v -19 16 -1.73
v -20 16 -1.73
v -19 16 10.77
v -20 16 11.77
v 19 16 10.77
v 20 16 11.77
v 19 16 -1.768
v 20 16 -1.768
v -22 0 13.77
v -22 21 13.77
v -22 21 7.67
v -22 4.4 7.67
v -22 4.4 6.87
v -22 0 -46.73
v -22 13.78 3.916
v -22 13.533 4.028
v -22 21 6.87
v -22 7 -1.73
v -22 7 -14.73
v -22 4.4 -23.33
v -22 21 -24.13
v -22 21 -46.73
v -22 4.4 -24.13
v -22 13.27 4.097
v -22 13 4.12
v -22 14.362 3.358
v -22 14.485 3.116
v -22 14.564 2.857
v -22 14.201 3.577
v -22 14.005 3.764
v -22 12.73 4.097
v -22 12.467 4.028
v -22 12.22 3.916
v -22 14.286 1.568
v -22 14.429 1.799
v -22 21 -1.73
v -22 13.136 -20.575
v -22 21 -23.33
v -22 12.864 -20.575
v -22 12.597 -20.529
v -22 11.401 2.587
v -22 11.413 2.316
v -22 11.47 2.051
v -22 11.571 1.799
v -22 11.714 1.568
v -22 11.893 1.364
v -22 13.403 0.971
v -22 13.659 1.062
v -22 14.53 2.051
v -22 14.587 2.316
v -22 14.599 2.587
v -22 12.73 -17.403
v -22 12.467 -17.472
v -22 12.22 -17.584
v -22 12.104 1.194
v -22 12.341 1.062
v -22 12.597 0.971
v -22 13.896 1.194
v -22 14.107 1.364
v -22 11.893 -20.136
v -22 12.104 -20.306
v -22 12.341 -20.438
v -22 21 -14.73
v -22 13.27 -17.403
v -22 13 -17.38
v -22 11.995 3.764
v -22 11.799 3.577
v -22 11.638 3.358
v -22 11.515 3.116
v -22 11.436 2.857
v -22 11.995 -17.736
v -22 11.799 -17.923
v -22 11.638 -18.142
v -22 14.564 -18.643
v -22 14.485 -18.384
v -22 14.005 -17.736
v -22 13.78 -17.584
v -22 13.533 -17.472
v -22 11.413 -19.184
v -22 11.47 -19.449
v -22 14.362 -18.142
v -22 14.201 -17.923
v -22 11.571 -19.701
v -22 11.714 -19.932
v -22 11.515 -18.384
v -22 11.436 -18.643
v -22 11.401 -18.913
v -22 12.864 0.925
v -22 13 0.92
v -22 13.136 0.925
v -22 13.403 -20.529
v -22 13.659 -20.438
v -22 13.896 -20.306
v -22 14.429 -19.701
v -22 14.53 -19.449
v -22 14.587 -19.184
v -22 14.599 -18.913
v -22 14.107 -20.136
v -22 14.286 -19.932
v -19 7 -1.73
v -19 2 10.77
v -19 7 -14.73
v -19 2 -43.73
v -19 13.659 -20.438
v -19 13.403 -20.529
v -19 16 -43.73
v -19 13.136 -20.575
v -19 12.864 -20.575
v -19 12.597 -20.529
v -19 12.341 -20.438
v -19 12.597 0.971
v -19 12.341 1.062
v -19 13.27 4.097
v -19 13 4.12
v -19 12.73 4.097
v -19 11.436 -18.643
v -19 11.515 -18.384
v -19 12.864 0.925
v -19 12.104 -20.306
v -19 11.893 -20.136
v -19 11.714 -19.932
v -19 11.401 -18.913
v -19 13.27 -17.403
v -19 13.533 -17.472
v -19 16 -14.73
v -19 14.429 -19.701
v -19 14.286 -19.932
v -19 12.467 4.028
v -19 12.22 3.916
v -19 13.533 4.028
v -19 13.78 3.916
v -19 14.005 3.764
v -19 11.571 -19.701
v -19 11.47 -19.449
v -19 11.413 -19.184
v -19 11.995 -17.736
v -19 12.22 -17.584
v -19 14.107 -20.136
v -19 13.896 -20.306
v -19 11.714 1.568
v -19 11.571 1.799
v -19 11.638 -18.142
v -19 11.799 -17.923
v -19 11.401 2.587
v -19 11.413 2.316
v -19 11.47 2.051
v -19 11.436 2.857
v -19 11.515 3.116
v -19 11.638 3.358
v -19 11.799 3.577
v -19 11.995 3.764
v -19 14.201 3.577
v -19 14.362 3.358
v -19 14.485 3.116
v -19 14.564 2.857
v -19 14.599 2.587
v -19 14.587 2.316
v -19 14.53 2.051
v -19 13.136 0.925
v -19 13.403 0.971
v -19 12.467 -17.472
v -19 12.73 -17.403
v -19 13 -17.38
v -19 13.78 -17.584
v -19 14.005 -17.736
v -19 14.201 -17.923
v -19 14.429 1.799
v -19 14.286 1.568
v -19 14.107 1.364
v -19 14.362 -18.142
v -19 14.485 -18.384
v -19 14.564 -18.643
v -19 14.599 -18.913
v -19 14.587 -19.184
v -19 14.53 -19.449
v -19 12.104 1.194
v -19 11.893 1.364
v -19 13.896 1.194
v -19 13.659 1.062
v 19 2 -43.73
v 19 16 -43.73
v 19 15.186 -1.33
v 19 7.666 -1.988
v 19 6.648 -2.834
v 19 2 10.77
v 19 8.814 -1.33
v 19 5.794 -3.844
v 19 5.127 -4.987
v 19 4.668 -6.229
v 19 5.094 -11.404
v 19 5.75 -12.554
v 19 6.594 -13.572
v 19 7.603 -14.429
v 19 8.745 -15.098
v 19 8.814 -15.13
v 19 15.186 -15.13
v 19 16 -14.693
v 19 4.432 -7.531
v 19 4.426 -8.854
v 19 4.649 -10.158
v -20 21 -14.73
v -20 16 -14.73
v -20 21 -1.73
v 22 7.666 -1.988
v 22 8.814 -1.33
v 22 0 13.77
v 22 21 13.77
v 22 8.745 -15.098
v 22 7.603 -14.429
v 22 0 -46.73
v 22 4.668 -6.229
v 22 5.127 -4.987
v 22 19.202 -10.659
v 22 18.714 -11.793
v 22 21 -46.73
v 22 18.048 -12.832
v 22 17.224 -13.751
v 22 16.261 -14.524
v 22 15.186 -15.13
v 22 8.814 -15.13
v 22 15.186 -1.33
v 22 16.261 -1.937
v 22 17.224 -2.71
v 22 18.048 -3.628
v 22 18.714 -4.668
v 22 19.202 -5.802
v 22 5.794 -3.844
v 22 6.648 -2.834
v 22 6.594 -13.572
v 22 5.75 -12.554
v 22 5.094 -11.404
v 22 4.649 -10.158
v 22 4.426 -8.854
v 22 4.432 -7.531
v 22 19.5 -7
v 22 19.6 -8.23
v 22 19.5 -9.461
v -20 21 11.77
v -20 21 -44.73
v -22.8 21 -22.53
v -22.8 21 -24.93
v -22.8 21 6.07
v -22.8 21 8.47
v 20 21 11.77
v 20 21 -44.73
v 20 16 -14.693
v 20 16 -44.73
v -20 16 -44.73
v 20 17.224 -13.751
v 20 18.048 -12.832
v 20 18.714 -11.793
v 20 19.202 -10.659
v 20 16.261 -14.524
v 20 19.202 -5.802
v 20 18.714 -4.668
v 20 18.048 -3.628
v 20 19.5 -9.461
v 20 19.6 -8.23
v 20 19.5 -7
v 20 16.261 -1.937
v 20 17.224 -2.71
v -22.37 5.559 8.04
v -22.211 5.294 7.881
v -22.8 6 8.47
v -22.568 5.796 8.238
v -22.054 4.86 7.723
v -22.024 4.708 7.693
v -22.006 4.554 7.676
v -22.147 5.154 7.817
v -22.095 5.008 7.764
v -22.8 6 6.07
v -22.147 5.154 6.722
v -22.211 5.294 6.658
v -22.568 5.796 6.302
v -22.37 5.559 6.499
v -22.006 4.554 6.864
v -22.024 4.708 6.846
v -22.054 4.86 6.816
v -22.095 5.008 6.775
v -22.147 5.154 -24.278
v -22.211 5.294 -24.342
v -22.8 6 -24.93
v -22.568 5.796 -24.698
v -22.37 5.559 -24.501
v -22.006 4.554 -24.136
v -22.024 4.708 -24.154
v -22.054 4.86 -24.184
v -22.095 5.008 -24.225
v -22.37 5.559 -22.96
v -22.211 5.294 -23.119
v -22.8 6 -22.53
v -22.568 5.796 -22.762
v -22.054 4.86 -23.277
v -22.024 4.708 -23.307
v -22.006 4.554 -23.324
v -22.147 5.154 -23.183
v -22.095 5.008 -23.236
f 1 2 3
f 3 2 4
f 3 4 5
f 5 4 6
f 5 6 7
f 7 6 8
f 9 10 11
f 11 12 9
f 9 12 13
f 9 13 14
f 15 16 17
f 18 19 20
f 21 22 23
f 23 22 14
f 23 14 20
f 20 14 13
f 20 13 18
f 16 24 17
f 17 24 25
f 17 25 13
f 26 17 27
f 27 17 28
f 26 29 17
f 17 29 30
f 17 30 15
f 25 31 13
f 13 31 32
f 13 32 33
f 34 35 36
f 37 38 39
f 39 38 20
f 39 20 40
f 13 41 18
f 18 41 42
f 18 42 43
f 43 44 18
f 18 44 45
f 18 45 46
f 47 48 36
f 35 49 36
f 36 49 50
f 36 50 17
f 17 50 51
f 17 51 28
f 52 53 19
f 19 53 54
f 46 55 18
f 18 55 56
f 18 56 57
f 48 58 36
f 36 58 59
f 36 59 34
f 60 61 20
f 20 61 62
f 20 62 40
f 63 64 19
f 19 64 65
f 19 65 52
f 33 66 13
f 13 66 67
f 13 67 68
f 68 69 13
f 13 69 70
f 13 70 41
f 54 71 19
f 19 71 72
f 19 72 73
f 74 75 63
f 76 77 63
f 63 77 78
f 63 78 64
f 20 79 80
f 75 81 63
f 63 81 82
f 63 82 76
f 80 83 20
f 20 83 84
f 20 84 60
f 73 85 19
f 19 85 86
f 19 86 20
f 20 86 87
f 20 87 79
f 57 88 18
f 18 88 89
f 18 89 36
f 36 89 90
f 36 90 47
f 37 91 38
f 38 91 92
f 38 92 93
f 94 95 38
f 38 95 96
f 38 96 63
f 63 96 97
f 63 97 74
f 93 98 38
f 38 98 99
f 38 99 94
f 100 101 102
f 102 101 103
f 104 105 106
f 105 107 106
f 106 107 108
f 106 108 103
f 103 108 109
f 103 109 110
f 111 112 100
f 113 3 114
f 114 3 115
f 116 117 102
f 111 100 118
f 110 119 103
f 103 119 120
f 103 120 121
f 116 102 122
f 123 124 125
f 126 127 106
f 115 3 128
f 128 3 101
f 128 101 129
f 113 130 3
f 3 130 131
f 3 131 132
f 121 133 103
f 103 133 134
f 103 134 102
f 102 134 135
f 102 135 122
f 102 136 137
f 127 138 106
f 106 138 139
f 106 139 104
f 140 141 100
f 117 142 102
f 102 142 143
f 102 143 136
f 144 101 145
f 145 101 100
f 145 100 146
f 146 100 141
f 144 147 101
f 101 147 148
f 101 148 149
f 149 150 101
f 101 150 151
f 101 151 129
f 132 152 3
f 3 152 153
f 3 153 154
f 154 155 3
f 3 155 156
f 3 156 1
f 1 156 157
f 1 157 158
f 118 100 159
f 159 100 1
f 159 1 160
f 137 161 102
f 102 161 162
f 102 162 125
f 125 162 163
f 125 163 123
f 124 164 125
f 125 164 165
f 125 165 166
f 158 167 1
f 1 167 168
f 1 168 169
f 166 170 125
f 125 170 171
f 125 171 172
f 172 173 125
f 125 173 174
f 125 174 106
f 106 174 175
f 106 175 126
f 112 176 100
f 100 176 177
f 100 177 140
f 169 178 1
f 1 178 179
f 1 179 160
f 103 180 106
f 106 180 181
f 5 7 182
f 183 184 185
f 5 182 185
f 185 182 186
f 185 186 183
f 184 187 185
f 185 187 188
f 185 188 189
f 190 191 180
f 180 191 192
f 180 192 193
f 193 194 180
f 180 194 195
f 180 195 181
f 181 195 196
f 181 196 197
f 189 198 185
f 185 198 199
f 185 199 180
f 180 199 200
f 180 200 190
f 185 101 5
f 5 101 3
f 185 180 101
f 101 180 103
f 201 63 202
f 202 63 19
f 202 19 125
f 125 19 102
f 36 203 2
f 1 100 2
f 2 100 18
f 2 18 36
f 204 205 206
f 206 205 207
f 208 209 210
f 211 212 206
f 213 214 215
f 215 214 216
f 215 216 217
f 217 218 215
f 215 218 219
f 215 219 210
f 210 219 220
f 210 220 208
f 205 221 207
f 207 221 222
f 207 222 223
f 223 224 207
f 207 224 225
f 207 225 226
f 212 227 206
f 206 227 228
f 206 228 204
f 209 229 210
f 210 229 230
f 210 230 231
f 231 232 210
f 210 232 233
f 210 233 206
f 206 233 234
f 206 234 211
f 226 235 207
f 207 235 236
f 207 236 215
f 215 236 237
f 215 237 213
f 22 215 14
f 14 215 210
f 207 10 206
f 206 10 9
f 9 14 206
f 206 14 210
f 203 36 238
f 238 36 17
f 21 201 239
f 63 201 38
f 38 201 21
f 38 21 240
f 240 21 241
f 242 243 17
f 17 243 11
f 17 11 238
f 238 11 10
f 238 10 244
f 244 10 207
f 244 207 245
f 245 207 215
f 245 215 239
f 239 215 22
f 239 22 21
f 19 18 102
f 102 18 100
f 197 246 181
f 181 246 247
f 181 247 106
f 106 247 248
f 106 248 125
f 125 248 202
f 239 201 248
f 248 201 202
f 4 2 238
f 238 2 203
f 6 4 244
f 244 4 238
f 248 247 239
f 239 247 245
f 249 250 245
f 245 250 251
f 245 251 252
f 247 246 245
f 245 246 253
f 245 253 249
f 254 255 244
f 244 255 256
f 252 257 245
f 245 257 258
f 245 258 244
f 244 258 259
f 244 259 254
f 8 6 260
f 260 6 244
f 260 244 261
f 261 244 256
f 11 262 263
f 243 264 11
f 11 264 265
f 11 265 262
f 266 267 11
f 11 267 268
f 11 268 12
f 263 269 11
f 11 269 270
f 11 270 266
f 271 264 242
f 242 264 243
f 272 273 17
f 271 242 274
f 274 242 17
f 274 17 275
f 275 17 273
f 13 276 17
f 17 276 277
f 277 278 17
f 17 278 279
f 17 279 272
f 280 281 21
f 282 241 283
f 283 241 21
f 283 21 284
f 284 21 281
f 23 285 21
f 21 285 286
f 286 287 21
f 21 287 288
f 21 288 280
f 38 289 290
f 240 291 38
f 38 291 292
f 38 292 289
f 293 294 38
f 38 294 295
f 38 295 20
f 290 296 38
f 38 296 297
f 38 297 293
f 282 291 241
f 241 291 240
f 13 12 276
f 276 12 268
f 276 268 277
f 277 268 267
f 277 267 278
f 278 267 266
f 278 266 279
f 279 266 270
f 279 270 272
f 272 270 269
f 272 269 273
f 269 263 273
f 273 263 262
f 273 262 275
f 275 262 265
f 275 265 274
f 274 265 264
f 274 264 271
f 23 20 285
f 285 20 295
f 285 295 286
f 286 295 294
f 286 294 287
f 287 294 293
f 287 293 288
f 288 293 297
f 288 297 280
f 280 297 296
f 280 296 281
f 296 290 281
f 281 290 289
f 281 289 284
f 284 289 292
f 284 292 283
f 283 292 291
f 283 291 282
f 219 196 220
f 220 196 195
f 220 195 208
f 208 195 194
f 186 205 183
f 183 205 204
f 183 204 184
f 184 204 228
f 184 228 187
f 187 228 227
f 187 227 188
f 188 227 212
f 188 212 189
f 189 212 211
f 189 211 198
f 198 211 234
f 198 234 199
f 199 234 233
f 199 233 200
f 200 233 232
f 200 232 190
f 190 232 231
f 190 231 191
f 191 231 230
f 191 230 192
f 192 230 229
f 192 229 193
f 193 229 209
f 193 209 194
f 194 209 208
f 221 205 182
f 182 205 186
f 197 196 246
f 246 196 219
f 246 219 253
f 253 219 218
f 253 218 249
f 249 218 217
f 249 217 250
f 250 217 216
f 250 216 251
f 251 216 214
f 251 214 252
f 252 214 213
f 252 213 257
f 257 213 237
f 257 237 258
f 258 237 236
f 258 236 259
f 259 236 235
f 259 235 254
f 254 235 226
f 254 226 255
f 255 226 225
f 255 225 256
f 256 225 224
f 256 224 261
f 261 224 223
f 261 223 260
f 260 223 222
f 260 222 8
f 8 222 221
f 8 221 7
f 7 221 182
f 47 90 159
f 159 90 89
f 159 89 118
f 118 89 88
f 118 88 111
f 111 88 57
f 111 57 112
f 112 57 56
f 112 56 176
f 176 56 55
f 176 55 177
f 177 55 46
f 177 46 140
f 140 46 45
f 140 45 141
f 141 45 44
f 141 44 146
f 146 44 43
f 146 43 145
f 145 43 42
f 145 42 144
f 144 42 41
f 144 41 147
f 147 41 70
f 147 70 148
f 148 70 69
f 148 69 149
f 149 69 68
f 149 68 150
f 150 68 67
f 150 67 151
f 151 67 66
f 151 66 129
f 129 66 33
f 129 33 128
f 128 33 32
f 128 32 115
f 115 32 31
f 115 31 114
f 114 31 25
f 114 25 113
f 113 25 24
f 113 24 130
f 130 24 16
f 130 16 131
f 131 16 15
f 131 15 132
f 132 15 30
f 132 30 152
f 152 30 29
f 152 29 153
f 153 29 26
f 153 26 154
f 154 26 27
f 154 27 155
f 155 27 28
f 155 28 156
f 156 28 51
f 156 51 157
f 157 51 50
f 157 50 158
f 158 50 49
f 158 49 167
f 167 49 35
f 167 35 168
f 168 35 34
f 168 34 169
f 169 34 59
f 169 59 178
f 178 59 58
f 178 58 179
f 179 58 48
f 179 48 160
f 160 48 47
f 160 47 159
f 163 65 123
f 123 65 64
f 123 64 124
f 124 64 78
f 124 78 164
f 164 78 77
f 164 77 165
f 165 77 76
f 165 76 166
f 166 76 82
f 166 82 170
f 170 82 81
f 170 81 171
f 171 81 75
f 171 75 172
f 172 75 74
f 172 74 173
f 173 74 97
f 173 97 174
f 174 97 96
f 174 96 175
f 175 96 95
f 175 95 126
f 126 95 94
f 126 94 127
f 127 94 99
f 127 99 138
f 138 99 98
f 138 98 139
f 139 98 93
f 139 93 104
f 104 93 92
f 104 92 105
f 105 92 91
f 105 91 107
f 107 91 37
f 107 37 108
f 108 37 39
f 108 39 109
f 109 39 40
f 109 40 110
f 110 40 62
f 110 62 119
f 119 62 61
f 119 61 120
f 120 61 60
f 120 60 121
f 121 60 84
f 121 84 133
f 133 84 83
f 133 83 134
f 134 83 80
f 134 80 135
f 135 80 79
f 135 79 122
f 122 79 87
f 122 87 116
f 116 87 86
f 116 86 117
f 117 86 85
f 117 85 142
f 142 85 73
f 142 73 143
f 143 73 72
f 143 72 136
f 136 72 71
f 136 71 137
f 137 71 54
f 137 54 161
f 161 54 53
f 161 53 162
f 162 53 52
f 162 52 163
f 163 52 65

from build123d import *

# Parameters (mm, degrees)
CROQUIS3_W              = 44
CROQUIS3_H              = 60.5
SALIENTE_EXTRUIR1_DEPTH = 2
SALIENTE_EXTRUIR2_DEPTH = 19
CROQUIS5_W              = 3
CROQUIS5_H              = 13
SALIENTE_EXTRUIR3_DEPTH = 5
CROQUIS6_W              = 40
CROQUIS6_H              = 56.5
CROQUIS6_W_2            = 38
CROQUIS6_H_2            = 54.5
CORTAR_EXTRUIR1_DEPTH   = 5
SALIENTE_EXTRUIR4_DEPTH = 15
REDONDEO1_R             = 2
CORTAR_EXTRUIR4_DEPTH   = 10
CROQUIS9_R              = 1.6
CORTAR_EXTRUIR5_DEPTH   = 10


with BuildPart() as part:
    # Croquis3 → Saliente-Extruir1 (new body)
    with BuildSketch(Plane(origin=(0, 0, 0), x_dir=(1, 0, 0), z_dir=(0, 1, 0))):
        with Locations((0, 16.480436564)):
            Rectangle(CROQUIS3_W, CROQUIS3_H)
    extrude(amount=SALIENTE_EXTRUIR1_DEPTH)

    # Croquis4 → Saliente-Extruir2 (add)
    with BuildSketch(Plane(origin=(0, 2, 0), x_dir=(1, 0, 0), z_dir=(0, 1, 0))):
        Polygon((-22, -13.769563436), (22, -13.769563436), (22, 46.730436564), (-22, 46.730436564), (-22, 14.730436564), (-19, 14.730436564), (-19, 43.730436564), (19, 43.730436564), (19, -10.769563436), (-19, -10.769563436), (-19, 1.730436564), (-22, 1.730436564), align=None)
    extrude(amount=SALIENTE_EXTRUIR2_DEPTH)

    # Croquis5 → Saliente-Extruir3 (add)
    with BuildSketch(Plane(origin=(0, 2, 0), x_dir=(1, 0, 0), z_dir=(0, 1, 0))):
        with Locations((-20.5, 8.230436564)):
            Rectangle(CROQUIS5_W, CROQUIS5_H)
    extrude(amount=SALIENTE_EXTRUIR3_DEPTH)

    # Croquis6 → Cortar-Extruir1 (cut)
    with BuildSketch(Plane(origin=(0, 21, 0), x_dir=(1, 0, 0), z_dir=(0, 1, 0))):
        with Locations((0, 16.480436564)):
            Rectangle(CROQUIS6_W, CROQUIS6_H)
        with Locations((0, 16.480436564)):
            Rectangle(CROQUIS6_W_2, CROQUIS6_H_2, mode=Mode.SUBTRACT)
    extrude(amount=-CORTAR_EXTRUIR1_DEPTH, mode=Mode.SUBTRACT)

    # Croquis7 → Saliente-Extruir4 (add)
    with BuildSketch(Plane(origin=(0, 21, 0), x_dir=(1, 0, 0), z_dir=(0, 1, 0))):
        Polygon((-22, -7.269563436), (-22, -6.869563436), (-22.8, -6.069563436), (-22.8, -8.469563436), (-22, -7.669563436), align=None)
        Polygon((-22, 24.130436564), (-22, 23.730436564), (-22, 23.330436564), (-22.8, 22.530436564), (-22.8, 24.930436564), align=None)
    extrude(amount=-SALIENTE_EXTRUIR4_DEPTH)

    # Redondeo1
    # the kernel refuses this fillet: 2 mm, written as the material it adds along each edge
    with BuildSketch(Plane(origin=(-22, 6, 11.669563436), x_dir=(0, -1, 0), z_dir=(0, 0, -1))) as redondeo1_piece_1_section:
        with BuildLine():
            CenterArc((1.6, 2), REDONDEO1_R, 216.869897646, 53.130102354)
            Line((0, 0.8), (-0.032, 0.776))
            ThreePointArc((-0.032, 0.776), (-0.04, 0.4), (-0.04, 0))
            Line((-0.04, 0), (0, -0.04))
            Line((0, -0.04), (1.6, -0.04))
            Line((1.6, -0.04), (1.6, 0))
        make_face()
    redondeo1_piece_1 = extrude(amount=8.8, mode=Mode.PRIVATE)
    redondeo1_piece_1 = split(redondeo1_piece_1, bisect_by=Plane(origin=(-21.934112323, 5.657693128, 7.603675758), z_dir=(-0.7071067811865467, 0, -0.7071067811865483)), keep=Keep.TOP, mode=Mode.PRIVATE)
    redondeo1_piece_1 = split(redondeo1_piece_1, bisect_by=Plane(origin=(-21.934112323, 5.657693128, 6.935451113), z_dir=(-0.7071067811865467, 0, 0.7071067811865483)), keep=Keep.TOP, mode=Mode.PRIVATE)
    add(redondeo1_piece_1)
    with BuildSketch(Plane(origin=(-22, 6, -19.330436564), x_dir=(0, -1, 0), z_dir=(0, 0, -1))) as redondeo1_piece_2_section:
        with BuildLine():
            CenterArc((1.6, 2), REDONDEO1_R, 216.869897646, 53.130102354)
            Line((0, 0.8), (-0.032, 0.776))
            ThreePointArc((-0.032, 0.776), (-0.04, 0.4), (-0.04, 0))
            Line((-0.04, 0), (0, -0.04))
            Line((0, -0.04), (1.6, -0.04))
            Line((1.6, -0.04), (1.6, 0))
        make_face()
    redondeo1_piece_2 = extrude(amount=8.8, mode=Mode.PRIVATE)
    redondeo1_piece_2 = split(redondeo1_piece_2, bisect_by=Plane(origin=(-21.934112323, 5.657693128, -23.396324242), z_dir=(-0.707106781186546, 0, -0.7071067811865491)), keep=Keep.TOP, mode=Mode.PRIVATE)
    redondeo1_piece_2 = split(redondeo1_piece_2, bisect_by=Plane(origin=(-21.934112323, 5.657693128, -24.064548887), z_dir=(-0.7071067811865476, 0, 0.7071067811865476)), keep=Keep.TOP, mode=Mode.PRIVATE)
    add(redondeo1_piece_2)

    # Croquis8 → Cortar-Extruir4 (cut)
    with BuildSketch(Plane(origin=(22, 0, 0), x_dir=(0, 0, -1), z_dir=(1, 0, 0))):
        with BuildLine():
            Line((15.097928983, 8.744612484), (15.130436564, 8.814093536))
            Line((15.130436564, 8.814093536), (15.130436564, 15.185906464))
            ThreePointArc((15.130436564, 15.185906464), (8.230436564, 19.6), (1.330436564, 15.185906464))
            Line((1.330436564, 15.185906464), (1.330436564, 8.814093536))
            ThreePointArc((1.330436564, 8.814093536), (8.192081775, 4.400096783), (15.097928983, 8.744612484))
        make_face()
    extrude(amount=-CORTAR_EXTRUIR4_DEPTH, mode=Mode.SUBTRACT)

    # Croquis9 → Cortar-Extruir5 (cut)
    with BuildSketch(Plane.ZY.offset(22)):
        with Locations((-18.980436564, 13)):
            Circle(CROQUIS9_R)
        with Locations((2.519563436, 13)):
            Circle(CROQUIS9_R)
    extrude(amount=-CORTAR_EXTRUIR5_DEPTH, mode=Mode.SUBTRACT)


solid = part.part
